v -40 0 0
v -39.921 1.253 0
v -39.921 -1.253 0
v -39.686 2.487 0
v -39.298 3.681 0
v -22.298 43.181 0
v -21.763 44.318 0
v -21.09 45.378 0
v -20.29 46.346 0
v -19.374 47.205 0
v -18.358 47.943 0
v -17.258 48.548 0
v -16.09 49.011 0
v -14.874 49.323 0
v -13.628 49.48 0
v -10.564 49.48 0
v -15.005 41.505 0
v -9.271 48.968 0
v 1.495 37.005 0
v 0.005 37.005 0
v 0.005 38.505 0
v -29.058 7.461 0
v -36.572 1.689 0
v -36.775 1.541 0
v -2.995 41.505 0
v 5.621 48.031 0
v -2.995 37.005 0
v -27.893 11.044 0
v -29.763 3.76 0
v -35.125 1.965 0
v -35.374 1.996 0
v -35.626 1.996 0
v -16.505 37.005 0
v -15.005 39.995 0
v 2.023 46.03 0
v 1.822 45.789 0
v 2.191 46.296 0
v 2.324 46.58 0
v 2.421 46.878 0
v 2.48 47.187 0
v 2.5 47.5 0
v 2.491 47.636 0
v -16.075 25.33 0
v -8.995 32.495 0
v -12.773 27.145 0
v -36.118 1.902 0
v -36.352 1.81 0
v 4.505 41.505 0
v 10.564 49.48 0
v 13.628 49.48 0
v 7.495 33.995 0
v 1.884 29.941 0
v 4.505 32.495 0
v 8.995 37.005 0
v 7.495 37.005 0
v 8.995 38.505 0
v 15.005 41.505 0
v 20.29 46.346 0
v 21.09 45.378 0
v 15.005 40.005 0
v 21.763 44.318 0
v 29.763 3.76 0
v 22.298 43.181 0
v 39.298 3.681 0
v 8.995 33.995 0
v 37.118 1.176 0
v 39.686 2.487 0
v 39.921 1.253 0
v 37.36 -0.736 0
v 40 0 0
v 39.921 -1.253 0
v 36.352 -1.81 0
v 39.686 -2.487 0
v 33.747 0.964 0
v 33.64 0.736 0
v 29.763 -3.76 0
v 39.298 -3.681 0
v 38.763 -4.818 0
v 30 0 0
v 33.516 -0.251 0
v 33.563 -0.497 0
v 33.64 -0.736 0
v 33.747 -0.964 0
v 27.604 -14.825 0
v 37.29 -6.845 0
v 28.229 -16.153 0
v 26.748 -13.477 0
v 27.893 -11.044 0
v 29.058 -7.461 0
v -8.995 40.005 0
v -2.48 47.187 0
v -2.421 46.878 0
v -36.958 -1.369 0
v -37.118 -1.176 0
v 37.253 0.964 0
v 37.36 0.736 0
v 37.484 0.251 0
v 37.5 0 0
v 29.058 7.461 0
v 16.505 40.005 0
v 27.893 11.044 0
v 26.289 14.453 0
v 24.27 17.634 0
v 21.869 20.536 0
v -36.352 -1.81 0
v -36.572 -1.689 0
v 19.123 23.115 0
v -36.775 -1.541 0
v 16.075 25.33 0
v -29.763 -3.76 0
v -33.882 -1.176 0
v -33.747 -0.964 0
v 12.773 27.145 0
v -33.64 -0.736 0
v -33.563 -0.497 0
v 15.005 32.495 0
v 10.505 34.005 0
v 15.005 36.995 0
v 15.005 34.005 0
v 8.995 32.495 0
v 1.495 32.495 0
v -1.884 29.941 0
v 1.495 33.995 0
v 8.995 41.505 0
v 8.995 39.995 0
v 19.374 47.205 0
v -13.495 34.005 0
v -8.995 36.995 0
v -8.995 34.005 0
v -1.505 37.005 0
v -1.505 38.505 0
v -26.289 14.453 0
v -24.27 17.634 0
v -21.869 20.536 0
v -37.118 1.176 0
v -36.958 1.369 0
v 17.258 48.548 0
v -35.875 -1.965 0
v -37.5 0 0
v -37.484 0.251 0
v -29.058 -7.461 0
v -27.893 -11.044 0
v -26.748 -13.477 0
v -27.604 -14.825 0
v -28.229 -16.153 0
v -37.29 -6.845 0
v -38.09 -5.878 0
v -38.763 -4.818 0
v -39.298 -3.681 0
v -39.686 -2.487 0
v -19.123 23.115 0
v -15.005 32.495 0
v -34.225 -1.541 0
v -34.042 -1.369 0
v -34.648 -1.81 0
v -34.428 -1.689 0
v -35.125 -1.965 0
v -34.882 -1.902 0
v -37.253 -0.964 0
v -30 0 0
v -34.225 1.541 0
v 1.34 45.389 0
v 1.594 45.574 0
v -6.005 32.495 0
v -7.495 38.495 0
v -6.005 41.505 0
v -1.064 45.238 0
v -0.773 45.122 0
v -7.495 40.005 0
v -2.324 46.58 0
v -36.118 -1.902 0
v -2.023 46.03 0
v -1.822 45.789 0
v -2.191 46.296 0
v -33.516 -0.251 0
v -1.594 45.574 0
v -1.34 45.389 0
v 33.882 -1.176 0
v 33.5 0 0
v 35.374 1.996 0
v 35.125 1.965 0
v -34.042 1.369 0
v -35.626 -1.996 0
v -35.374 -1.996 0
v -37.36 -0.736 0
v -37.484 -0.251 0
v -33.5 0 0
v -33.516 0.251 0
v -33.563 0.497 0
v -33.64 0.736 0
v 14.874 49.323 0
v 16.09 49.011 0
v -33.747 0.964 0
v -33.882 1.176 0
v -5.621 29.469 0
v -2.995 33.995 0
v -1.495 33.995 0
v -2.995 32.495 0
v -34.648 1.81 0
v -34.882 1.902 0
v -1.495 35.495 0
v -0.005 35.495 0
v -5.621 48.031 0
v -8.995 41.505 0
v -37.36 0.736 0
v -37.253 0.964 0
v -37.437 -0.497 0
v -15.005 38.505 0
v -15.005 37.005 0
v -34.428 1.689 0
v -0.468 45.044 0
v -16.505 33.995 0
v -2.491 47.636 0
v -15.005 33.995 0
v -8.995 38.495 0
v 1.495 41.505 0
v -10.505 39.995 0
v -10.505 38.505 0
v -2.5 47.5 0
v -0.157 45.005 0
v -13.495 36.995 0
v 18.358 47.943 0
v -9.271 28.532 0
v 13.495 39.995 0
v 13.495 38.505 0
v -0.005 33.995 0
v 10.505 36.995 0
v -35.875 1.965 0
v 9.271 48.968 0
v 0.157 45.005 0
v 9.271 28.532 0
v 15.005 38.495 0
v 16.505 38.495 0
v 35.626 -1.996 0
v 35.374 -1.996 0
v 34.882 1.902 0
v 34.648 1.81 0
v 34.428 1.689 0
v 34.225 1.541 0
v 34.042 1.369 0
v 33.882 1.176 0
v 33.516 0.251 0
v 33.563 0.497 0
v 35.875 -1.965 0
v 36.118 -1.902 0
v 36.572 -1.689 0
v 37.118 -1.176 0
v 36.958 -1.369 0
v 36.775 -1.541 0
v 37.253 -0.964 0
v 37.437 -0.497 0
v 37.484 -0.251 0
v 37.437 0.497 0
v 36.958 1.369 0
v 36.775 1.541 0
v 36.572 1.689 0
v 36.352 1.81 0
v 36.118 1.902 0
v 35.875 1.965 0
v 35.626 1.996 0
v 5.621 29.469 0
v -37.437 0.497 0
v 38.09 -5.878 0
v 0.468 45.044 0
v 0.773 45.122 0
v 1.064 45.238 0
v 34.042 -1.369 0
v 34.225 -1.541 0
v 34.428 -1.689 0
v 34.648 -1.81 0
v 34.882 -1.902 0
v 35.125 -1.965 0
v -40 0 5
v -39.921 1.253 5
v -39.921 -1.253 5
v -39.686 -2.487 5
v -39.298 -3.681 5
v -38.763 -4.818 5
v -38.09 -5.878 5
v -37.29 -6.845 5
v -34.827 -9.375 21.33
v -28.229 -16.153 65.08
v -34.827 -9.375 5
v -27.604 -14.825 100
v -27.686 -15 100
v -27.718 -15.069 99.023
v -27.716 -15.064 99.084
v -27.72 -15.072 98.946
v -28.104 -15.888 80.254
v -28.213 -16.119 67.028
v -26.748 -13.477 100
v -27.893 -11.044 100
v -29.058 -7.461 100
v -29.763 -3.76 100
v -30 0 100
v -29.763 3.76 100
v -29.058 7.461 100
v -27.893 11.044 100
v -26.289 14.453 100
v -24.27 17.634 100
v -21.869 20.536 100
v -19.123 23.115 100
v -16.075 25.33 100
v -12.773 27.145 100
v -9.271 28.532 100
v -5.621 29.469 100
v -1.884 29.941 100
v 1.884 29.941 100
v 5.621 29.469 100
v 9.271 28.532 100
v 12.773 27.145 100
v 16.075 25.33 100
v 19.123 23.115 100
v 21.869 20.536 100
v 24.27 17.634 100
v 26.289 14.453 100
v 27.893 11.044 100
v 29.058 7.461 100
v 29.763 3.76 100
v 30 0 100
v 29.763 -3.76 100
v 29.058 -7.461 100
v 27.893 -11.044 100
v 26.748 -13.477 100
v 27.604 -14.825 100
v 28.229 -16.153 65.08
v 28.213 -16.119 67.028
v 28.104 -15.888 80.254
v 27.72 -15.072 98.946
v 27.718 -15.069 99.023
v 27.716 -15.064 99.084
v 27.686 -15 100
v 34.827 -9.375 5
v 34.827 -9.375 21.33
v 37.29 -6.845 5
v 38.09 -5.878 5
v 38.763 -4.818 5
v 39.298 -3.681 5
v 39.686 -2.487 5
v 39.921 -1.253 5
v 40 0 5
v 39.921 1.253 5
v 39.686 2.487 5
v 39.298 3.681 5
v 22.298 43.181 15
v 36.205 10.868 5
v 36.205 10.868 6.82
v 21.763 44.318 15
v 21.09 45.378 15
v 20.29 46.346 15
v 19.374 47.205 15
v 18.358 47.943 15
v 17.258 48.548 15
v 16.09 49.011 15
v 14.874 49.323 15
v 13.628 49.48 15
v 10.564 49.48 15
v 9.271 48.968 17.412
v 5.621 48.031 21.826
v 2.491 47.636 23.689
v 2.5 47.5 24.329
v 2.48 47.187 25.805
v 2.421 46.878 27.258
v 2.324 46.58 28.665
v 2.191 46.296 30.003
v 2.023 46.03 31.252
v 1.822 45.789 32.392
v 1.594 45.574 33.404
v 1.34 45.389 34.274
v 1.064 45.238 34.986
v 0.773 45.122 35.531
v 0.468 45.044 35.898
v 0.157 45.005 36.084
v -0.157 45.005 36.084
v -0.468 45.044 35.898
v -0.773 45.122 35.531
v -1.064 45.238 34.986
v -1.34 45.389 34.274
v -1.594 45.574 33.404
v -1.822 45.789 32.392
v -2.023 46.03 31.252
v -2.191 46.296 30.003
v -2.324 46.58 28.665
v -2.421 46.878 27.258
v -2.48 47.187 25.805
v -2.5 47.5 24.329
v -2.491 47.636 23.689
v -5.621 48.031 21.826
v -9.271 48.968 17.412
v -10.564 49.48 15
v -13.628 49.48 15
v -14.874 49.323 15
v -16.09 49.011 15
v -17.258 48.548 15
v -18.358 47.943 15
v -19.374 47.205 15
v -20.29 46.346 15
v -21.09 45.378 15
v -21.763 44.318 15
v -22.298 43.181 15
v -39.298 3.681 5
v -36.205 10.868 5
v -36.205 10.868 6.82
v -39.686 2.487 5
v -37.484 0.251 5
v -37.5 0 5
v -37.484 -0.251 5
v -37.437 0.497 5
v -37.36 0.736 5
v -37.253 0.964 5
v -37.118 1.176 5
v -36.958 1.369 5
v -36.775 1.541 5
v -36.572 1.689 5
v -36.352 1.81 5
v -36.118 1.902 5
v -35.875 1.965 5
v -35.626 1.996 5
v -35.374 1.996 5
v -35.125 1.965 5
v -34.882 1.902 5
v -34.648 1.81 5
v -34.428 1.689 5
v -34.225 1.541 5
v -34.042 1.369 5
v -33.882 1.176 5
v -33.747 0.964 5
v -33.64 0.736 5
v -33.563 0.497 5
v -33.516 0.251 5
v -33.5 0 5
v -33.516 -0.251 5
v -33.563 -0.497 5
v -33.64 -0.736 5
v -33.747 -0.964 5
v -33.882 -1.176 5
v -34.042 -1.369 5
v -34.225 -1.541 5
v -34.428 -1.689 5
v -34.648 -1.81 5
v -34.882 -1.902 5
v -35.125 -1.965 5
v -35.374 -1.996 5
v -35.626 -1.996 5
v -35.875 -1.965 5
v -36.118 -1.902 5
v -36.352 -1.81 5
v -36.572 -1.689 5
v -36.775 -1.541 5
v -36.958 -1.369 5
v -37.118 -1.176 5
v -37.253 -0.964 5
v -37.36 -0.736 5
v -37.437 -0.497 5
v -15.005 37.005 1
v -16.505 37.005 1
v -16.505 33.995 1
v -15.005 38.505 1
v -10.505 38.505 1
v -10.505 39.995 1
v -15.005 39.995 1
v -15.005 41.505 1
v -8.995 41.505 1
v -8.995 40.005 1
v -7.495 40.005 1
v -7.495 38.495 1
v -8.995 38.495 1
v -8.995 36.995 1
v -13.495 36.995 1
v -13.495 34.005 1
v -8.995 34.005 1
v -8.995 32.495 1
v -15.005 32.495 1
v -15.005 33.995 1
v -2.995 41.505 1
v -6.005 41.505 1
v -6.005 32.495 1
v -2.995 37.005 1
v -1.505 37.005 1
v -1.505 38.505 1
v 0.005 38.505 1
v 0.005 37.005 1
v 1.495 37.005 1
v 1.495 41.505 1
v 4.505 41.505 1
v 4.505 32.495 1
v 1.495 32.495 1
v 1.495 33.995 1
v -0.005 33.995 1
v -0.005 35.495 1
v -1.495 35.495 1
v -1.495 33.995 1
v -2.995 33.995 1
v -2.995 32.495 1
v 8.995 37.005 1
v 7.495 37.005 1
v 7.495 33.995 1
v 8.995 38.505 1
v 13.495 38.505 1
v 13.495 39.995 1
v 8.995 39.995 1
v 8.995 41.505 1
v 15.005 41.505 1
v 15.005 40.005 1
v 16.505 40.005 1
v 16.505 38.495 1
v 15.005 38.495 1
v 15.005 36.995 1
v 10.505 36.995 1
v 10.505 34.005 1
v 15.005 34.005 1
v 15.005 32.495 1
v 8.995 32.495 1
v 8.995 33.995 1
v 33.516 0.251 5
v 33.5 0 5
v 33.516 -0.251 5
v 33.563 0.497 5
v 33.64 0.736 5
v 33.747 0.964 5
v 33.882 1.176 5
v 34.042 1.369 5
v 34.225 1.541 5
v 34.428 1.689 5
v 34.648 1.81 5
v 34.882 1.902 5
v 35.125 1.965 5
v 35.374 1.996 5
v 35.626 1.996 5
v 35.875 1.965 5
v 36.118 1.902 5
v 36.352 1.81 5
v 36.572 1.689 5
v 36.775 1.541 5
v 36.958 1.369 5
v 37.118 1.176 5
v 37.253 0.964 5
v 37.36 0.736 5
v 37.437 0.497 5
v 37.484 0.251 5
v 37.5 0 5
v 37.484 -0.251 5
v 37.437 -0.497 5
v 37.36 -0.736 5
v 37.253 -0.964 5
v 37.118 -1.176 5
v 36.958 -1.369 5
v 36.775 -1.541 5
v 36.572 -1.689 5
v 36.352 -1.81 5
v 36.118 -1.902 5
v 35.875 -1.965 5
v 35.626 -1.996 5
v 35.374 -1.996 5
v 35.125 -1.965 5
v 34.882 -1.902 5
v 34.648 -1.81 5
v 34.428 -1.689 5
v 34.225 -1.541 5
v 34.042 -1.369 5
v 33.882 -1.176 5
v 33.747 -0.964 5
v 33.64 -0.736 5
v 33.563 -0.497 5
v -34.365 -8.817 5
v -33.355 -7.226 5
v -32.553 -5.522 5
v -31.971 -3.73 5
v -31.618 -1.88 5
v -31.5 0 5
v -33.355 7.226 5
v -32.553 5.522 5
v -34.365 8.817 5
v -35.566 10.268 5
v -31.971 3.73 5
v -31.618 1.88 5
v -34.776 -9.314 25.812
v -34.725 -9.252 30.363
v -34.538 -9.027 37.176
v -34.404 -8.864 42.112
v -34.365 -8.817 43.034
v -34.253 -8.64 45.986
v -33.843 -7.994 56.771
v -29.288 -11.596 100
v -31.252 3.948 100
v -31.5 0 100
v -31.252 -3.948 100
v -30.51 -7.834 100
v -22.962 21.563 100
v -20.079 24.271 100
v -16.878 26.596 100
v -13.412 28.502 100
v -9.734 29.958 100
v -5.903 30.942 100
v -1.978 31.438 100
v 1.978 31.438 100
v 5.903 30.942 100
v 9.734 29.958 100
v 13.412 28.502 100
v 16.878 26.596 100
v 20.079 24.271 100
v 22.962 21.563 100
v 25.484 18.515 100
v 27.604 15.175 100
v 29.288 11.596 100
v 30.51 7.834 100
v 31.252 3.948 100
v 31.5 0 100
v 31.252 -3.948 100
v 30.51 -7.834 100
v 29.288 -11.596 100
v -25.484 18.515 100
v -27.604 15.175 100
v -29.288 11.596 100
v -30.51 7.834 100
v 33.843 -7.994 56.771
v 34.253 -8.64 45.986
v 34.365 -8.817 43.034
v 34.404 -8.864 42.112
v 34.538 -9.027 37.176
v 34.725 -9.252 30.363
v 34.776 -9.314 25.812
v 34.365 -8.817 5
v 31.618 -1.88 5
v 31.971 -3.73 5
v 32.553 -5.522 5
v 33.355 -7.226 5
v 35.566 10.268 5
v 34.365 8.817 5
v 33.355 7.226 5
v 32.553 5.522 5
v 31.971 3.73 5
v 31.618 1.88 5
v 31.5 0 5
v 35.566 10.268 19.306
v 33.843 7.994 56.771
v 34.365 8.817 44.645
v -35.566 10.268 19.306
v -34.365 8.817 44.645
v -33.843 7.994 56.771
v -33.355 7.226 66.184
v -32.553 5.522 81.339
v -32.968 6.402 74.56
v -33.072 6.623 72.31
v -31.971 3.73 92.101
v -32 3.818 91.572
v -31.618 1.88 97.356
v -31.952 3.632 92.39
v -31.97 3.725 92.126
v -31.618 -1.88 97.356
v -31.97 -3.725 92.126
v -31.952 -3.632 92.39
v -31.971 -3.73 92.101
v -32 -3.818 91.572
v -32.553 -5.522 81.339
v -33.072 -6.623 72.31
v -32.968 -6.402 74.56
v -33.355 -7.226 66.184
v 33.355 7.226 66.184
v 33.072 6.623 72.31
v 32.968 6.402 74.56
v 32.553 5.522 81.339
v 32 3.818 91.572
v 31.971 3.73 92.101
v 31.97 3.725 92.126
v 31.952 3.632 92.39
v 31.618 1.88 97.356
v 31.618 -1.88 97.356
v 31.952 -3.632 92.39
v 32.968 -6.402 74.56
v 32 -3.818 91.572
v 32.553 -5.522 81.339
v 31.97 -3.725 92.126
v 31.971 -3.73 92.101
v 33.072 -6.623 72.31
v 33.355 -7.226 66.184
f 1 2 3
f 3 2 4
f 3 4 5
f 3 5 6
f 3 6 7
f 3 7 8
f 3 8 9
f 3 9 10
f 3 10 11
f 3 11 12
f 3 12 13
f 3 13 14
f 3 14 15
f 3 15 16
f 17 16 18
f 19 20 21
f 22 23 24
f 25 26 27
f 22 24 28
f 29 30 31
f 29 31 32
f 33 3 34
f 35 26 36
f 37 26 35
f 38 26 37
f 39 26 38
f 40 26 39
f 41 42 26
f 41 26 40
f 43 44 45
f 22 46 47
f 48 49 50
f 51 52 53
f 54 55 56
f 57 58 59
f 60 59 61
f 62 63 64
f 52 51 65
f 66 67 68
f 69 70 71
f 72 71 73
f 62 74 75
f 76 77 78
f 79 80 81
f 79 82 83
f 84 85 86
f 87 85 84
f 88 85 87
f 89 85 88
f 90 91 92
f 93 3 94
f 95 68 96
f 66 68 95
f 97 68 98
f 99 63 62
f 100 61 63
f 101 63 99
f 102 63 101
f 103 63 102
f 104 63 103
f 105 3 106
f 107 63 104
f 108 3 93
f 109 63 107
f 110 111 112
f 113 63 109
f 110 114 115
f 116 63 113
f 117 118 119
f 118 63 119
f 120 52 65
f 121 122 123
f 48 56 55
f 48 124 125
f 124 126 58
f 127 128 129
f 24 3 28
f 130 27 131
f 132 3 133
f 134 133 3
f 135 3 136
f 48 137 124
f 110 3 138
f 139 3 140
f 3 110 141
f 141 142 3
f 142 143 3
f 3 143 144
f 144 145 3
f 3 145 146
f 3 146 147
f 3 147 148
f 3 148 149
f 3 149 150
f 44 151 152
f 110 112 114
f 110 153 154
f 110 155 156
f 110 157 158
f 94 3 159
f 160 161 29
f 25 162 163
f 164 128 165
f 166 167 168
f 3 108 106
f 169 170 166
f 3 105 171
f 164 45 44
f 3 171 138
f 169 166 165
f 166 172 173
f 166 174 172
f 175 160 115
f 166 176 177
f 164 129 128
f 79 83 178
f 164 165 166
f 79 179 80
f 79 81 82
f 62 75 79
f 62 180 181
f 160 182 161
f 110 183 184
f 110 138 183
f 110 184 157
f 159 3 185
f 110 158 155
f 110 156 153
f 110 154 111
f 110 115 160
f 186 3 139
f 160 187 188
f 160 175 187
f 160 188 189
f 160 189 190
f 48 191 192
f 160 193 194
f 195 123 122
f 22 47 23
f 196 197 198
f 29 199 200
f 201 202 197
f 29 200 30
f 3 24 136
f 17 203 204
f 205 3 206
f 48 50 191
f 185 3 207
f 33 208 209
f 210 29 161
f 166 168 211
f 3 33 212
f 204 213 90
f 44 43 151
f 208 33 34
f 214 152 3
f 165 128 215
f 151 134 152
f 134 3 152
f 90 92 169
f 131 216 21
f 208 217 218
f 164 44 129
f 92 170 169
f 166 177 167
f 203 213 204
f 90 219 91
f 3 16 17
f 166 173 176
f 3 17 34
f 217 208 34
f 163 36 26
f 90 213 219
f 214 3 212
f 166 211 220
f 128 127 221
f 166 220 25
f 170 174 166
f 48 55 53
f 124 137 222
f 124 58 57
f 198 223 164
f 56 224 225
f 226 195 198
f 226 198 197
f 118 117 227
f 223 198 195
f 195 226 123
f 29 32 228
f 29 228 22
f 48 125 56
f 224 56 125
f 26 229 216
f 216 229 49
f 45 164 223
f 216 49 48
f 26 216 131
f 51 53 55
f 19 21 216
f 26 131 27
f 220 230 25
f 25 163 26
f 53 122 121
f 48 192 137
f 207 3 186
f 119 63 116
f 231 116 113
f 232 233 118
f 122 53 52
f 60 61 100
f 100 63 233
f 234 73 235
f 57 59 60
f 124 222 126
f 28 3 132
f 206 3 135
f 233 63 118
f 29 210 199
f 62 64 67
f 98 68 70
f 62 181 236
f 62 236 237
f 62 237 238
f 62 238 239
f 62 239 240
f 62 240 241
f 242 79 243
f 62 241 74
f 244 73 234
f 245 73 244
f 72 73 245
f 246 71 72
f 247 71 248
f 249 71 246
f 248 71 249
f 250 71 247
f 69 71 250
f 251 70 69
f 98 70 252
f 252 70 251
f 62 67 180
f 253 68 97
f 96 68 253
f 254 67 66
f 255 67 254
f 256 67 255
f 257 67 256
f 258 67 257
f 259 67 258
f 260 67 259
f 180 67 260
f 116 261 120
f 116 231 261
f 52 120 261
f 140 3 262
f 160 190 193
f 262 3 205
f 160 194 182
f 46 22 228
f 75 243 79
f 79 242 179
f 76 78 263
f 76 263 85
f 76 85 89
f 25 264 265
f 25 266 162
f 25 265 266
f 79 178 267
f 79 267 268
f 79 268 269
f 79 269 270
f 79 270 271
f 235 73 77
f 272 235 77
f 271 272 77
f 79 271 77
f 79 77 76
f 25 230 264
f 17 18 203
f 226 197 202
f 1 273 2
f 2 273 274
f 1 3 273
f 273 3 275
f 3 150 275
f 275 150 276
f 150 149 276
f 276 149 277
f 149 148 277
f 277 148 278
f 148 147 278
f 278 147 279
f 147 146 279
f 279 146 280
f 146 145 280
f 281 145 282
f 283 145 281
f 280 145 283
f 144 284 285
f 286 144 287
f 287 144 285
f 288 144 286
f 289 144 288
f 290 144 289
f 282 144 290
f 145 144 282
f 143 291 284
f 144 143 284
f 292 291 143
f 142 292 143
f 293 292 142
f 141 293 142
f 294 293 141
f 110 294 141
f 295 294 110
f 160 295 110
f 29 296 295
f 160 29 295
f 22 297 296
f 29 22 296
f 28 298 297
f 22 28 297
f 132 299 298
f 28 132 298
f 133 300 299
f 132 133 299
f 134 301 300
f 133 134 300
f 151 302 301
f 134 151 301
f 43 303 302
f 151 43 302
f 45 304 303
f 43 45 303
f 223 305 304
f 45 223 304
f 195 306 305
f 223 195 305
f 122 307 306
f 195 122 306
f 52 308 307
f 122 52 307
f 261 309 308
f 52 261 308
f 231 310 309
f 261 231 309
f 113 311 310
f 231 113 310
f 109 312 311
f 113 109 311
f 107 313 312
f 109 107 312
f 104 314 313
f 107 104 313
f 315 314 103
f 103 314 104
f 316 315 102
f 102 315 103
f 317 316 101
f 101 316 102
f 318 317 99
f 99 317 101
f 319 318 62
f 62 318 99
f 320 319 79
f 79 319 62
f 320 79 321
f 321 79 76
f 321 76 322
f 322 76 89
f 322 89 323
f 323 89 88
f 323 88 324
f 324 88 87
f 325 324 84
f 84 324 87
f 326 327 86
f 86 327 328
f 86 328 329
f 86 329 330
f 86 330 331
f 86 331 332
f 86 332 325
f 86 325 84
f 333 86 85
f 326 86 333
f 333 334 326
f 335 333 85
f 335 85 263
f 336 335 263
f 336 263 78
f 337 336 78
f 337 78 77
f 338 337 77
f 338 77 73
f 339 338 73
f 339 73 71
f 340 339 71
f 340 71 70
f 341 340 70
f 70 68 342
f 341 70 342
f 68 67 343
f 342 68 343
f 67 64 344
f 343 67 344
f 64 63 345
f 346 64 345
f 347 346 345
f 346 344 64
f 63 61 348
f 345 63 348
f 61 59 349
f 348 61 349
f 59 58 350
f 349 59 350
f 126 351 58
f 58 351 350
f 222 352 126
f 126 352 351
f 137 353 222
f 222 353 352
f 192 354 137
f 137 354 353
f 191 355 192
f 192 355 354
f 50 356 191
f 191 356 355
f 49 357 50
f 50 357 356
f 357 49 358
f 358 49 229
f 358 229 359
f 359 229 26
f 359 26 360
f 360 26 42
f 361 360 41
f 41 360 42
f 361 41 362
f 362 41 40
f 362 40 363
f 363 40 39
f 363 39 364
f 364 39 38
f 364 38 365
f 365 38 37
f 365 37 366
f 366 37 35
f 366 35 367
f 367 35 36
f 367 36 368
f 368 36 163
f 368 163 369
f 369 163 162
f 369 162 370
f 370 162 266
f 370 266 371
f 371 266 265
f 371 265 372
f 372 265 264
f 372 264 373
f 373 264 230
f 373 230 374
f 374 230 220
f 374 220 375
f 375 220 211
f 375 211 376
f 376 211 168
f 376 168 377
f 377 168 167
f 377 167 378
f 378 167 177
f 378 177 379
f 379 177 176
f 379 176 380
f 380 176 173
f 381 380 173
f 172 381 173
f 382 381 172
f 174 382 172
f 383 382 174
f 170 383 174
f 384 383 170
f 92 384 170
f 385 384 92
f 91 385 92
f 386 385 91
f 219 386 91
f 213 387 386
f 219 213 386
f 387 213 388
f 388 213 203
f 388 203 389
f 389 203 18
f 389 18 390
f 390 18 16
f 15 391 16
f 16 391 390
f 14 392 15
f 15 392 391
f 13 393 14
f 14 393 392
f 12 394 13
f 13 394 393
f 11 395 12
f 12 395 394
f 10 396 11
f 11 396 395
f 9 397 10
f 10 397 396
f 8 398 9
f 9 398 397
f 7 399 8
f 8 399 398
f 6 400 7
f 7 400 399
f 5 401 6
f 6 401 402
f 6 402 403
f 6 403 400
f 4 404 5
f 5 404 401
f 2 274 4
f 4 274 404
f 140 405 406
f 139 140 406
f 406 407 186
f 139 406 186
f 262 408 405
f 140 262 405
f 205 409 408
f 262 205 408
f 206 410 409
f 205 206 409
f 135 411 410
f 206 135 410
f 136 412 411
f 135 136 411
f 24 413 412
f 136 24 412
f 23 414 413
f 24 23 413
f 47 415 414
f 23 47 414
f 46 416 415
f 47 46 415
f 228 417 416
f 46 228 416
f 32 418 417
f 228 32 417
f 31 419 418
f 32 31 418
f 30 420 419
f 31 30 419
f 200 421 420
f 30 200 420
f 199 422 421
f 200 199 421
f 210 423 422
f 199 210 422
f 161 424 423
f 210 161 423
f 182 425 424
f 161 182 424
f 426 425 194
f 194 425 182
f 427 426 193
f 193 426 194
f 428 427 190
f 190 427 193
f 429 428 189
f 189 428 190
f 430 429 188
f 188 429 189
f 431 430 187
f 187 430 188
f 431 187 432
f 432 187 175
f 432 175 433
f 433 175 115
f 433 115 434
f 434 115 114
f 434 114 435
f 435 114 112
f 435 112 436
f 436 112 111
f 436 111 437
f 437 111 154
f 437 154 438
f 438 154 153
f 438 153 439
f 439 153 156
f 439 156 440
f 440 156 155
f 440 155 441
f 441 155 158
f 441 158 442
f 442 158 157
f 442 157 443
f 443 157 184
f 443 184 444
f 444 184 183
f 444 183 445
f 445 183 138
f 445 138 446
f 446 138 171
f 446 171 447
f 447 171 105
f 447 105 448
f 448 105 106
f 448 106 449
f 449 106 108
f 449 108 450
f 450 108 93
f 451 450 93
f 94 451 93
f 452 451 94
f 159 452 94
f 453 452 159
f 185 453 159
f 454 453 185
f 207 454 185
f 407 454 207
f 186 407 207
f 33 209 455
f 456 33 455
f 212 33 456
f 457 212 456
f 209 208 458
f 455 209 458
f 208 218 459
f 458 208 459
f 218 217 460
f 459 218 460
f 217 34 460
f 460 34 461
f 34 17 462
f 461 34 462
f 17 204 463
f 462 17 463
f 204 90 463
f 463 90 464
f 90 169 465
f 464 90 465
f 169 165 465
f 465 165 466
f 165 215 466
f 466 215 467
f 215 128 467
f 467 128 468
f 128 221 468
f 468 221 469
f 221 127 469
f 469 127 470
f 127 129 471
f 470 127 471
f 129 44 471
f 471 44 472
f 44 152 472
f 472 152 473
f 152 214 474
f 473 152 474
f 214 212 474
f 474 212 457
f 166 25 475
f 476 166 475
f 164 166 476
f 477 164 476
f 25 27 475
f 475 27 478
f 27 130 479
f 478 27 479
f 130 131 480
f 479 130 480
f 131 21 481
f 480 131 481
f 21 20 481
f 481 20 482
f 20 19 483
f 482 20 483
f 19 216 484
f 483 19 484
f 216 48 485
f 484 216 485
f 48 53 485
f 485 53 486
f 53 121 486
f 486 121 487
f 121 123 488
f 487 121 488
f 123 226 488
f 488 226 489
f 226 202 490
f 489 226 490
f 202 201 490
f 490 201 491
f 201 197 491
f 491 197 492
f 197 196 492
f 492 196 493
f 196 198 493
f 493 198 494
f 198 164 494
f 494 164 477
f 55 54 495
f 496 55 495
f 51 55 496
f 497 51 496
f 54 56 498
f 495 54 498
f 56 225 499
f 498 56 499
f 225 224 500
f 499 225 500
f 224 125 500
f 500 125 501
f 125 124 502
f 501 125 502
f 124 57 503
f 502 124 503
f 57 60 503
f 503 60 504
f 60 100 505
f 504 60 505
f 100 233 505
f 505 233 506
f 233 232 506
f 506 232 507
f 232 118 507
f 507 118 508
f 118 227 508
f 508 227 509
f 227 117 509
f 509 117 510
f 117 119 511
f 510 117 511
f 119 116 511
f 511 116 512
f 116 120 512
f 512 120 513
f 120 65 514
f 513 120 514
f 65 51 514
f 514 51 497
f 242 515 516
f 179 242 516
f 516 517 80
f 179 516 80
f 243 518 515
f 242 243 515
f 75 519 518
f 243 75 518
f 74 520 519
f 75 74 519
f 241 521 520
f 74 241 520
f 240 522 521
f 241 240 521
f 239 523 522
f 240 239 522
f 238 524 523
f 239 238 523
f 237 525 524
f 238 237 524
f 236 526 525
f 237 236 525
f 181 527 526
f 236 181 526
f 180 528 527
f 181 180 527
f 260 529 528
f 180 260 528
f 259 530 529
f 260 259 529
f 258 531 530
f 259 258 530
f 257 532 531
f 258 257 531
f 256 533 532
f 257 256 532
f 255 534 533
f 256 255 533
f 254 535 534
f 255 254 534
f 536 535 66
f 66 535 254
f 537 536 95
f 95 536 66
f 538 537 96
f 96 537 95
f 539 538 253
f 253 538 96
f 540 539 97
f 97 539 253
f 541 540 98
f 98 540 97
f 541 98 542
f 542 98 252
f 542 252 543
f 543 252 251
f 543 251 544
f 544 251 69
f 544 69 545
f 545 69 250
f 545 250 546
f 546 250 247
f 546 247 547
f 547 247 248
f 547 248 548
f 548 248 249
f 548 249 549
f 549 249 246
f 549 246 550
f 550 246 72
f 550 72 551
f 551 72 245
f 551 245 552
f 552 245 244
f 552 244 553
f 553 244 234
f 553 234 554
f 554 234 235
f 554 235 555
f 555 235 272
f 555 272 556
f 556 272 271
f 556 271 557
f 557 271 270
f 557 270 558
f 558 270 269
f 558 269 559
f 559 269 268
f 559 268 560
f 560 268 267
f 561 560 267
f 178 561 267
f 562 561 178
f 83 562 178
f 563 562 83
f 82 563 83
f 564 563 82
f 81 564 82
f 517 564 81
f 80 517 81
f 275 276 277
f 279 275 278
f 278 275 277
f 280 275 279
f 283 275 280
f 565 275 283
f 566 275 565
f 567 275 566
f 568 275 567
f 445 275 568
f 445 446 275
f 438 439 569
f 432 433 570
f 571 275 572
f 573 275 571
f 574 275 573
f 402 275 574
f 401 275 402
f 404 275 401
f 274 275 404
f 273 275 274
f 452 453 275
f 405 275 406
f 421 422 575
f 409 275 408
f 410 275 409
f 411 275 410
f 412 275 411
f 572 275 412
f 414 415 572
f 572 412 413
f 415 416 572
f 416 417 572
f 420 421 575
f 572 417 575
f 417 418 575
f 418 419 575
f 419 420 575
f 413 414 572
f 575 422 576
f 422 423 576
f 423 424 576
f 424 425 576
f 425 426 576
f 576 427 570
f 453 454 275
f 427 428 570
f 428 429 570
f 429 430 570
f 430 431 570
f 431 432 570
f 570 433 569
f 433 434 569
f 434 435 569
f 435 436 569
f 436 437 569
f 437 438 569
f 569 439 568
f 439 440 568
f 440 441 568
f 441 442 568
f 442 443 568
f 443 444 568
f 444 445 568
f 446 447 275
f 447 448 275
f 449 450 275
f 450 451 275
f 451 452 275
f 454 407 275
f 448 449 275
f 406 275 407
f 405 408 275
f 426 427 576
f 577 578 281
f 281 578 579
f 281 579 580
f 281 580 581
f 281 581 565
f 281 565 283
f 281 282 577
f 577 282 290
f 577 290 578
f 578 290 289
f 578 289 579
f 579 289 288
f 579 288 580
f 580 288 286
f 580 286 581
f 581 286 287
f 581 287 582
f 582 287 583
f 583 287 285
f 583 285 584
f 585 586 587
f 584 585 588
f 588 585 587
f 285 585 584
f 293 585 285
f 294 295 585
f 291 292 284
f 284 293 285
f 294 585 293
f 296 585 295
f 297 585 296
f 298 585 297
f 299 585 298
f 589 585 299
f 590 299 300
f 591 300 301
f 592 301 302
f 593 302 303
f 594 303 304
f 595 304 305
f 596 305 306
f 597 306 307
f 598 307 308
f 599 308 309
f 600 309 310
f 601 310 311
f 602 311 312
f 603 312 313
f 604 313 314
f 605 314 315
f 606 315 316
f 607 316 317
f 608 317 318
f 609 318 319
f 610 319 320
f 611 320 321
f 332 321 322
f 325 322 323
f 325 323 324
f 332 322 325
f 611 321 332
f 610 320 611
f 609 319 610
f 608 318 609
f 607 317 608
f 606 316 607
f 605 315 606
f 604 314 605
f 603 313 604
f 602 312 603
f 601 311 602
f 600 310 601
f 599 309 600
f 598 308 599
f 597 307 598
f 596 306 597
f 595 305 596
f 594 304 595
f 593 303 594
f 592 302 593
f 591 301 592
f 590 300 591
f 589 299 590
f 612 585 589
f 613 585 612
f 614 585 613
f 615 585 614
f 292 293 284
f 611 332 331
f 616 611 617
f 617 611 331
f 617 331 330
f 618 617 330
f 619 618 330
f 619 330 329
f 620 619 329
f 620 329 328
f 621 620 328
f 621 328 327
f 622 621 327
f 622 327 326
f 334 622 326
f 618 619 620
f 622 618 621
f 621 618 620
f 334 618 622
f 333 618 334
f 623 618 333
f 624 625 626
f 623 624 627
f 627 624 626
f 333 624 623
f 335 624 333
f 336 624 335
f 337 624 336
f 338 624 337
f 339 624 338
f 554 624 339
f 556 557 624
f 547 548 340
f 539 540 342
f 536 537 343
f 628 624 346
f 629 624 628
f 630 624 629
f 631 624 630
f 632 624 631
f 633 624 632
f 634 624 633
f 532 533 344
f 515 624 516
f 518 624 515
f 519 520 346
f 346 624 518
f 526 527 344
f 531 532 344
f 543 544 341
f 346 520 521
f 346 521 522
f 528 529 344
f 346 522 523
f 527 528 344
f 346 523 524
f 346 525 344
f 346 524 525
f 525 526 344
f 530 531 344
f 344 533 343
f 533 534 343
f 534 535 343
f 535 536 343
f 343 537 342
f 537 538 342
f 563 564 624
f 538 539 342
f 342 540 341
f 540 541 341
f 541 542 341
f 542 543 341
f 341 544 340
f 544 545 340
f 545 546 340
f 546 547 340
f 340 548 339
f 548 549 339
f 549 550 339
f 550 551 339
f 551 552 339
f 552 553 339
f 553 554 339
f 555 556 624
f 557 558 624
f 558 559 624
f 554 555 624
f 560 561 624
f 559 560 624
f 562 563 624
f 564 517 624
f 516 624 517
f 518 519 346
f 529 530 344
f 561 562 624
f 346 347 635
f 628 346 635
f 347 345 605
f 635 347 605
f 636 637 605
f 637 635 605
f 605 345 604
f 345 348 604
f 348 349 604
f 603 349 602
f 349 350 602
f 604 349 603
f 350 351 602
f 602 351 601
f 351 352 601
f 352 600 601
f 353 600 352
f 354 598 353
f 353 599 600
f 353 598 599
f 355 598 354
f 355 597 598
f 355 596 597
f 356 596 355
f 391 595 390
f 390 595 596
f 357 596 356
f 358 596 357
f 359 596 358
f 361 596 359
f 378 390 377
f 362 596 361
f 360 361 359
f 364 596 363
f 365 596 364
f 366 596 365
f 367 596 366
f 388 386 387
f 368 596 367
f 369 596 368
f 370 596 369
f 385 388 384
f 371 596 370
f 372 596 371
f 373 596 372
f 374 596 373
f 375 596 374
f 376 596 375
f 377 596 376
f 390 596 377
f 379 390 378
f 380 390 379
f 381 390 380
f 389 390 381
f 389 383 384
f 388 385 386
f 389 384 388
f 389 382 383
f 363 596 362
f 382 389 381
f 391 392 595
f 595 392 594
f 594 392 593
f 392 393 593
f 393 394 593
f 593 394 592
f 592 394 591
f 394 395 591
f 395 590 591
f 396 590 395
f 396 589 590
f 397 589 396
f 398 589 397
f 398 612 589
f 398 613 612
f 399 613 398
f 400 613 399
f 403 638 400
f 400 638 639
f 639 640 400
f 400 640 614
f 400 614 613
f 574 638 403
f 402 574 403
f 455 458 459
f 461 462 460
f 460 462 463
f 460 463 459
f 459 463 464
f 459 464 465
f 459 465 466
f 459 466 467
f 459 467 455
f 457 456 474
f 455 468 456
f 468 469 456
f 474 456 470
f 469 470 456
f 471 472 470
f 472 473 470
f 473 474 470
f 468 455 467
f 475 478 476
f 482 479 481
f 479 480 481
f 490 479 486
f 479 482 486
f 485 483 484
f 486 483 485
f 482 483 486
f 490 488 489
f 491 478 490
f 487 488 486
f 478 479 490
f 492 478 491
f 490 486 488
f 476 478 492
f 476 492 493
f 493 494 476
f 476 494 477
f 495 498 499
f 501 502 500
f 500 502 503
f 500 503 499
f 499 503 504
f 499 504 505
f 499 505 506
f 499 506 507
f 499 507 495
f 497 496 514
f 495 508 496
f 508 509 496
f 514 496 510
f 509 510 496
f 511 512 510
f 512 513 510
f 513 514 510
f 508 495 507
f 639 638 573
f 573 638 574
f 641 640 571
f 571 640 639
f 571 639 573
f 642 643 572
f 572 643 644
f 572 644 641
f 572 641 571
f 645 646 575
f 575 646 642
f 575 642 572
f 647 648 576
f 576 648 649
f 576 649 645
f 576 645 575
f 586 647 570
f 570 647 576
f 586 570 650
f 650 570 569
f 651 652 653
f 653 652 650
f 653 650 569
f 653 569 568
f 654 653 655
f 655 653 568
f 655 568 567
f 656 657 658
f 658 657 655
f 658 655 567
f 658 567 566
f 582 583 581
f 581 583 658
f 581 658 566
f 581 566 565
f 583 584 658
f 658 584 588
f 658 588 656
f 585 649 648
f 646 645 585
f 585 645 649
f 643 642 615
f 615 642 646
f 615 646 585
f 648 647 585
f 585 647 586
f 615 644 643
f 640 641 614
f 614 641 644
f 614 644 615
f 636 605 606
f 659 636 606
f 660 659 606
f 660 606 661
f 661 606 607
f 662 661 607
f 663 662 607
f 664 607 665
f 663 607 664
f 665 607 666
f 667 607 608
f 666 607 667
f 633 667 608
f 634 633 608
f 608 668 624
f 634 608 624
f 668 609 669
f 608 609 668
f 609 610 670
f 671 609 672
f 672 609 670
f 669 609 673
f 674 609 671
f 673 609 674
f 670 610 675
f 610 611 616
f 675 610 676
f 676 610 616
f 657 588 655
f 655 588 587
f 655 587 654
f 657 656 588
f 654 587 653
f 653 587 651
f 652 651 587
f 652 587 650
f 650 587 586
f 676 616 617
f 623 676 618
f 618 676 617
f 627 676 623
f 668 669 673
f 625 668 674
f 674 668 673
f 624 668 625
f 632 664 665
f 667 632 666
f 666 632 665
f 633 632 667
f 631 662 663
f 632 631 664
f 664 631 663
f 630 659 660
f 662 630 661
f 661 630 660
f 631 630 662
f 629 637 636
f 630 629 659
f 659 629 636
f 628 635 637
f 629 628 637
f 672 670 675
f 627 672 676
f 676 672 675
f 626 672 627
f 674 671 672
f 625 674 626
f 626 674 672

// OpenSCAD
// This work is licensed under the Creative Commons Attribution-ShareAlike 3.0 Unported License.
// To view a copy of this license, visit http://creativecommons.org/licenses/by-sa/3.0/.
//
// Bas Spaans (bas.spaans@gmail.com)
//

include <bitmap.scad>;

// Variables

d_mast=60;
l_meter=100;
wand_d=1.5;
d_lijn=5;
$fn=50;

// Calculations

r_mast=d_mast/2;
r_lijn=d_lijn/2;

difference (){
	hull(){
		cylinder (r=r_mast+wand_d,h=l_meter);
		translate ([r_mast,0,0]) {cylinder (r=10,h=5);}
		translate ([-r_mast,0,0]) {cylinder (r=10,h=5);}
		translate ([13,r_lijn+r_mast+7,0]) {cylinder (r=10,h=15);}
		translate ([-13,r_lijn+r_mast+7,0]) {cylinder (r=10,h=15);}
	}
	translate ([0,0,-1]) {cylinder (r=r_mast,h=l_meter+2);}
	translate ([0,-30,-1]) {cylinder (r=r_mast+wand_d,h=l_meter+2);}
	translate ([0,r_lijn+r_mast+15,-10]) {cylinder(r=r_lijn,h=60);}
	translate ([0,r_lijn+r_mast+45,-10]) {cylinder(r=30,h=70);}
	translate ([r_mast+wand_d+15,0,5]) {cylinder (r=15, h=100);}
	translate ([-(r_mast+wand_d+15),0,5]) {cylinder (r=15, h=100);}
	translate ([(r_mast+wand_d+4),0,-1]) {cylinder (r=2, h=100);}
	translate ([-(r_mast+wand_d+4),0,-1]) {cylinder (r=2, h=100);}
	translate ([0,37,1]) {
		rotate ([0,180,90]) {
			translate ([0,-12,0]) {8bit_char("S",1.5,2);}
			8bit_char("W",1.5,2);
			translate ([0,12,0]) {8bit_char("S",1.5,2);}
		}
	}
}
